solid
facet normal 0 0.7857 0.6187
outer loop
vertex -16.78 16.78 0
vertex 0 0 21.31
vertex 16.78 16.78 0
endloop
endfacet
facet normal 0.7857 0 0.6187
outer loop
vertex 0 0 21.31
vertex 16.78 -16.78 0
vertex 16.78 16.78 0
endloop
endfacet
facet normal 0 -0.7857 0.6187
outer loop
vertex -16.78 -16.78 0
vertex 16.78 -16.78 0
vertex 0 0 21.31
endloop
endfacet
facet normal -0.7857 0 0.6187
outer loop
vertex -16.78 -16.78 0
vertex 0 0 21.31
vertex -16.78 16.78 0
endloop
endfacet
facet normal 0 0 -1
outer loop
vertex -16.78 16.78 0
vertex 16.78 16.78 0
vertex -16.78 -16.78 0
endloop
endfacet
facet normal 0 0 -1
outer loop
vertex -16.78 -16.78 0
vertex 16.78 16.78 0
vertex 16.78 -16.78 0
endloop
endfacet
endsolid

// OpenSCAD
$fn=100;

volume=8000.0;

height_to_base_ratio = 0.635;

w=pow(volume*3.0/height_to_base_ratio, 1/3.0);
h=height_to_base_ratio * w;
v=h*pow(w,2)/3.0;
echo("height=", h);
echo("base=", w);
echo("v=", v);


polyhedron(
  points=[ [w/2,w/2,0],[w/2,-w/2,0],[-w/2,-w/2,0],[-w/2,w/2,0], // the four points at base
           [0,0,h]  ],                                 // the apex point 
  faces=[ [0,1,4],[1,2,4],[2,3,4],[3,0,4],              // each triangle side
              [1,0,3],[2,1,3] ]                         // two triangles for square base
 );
